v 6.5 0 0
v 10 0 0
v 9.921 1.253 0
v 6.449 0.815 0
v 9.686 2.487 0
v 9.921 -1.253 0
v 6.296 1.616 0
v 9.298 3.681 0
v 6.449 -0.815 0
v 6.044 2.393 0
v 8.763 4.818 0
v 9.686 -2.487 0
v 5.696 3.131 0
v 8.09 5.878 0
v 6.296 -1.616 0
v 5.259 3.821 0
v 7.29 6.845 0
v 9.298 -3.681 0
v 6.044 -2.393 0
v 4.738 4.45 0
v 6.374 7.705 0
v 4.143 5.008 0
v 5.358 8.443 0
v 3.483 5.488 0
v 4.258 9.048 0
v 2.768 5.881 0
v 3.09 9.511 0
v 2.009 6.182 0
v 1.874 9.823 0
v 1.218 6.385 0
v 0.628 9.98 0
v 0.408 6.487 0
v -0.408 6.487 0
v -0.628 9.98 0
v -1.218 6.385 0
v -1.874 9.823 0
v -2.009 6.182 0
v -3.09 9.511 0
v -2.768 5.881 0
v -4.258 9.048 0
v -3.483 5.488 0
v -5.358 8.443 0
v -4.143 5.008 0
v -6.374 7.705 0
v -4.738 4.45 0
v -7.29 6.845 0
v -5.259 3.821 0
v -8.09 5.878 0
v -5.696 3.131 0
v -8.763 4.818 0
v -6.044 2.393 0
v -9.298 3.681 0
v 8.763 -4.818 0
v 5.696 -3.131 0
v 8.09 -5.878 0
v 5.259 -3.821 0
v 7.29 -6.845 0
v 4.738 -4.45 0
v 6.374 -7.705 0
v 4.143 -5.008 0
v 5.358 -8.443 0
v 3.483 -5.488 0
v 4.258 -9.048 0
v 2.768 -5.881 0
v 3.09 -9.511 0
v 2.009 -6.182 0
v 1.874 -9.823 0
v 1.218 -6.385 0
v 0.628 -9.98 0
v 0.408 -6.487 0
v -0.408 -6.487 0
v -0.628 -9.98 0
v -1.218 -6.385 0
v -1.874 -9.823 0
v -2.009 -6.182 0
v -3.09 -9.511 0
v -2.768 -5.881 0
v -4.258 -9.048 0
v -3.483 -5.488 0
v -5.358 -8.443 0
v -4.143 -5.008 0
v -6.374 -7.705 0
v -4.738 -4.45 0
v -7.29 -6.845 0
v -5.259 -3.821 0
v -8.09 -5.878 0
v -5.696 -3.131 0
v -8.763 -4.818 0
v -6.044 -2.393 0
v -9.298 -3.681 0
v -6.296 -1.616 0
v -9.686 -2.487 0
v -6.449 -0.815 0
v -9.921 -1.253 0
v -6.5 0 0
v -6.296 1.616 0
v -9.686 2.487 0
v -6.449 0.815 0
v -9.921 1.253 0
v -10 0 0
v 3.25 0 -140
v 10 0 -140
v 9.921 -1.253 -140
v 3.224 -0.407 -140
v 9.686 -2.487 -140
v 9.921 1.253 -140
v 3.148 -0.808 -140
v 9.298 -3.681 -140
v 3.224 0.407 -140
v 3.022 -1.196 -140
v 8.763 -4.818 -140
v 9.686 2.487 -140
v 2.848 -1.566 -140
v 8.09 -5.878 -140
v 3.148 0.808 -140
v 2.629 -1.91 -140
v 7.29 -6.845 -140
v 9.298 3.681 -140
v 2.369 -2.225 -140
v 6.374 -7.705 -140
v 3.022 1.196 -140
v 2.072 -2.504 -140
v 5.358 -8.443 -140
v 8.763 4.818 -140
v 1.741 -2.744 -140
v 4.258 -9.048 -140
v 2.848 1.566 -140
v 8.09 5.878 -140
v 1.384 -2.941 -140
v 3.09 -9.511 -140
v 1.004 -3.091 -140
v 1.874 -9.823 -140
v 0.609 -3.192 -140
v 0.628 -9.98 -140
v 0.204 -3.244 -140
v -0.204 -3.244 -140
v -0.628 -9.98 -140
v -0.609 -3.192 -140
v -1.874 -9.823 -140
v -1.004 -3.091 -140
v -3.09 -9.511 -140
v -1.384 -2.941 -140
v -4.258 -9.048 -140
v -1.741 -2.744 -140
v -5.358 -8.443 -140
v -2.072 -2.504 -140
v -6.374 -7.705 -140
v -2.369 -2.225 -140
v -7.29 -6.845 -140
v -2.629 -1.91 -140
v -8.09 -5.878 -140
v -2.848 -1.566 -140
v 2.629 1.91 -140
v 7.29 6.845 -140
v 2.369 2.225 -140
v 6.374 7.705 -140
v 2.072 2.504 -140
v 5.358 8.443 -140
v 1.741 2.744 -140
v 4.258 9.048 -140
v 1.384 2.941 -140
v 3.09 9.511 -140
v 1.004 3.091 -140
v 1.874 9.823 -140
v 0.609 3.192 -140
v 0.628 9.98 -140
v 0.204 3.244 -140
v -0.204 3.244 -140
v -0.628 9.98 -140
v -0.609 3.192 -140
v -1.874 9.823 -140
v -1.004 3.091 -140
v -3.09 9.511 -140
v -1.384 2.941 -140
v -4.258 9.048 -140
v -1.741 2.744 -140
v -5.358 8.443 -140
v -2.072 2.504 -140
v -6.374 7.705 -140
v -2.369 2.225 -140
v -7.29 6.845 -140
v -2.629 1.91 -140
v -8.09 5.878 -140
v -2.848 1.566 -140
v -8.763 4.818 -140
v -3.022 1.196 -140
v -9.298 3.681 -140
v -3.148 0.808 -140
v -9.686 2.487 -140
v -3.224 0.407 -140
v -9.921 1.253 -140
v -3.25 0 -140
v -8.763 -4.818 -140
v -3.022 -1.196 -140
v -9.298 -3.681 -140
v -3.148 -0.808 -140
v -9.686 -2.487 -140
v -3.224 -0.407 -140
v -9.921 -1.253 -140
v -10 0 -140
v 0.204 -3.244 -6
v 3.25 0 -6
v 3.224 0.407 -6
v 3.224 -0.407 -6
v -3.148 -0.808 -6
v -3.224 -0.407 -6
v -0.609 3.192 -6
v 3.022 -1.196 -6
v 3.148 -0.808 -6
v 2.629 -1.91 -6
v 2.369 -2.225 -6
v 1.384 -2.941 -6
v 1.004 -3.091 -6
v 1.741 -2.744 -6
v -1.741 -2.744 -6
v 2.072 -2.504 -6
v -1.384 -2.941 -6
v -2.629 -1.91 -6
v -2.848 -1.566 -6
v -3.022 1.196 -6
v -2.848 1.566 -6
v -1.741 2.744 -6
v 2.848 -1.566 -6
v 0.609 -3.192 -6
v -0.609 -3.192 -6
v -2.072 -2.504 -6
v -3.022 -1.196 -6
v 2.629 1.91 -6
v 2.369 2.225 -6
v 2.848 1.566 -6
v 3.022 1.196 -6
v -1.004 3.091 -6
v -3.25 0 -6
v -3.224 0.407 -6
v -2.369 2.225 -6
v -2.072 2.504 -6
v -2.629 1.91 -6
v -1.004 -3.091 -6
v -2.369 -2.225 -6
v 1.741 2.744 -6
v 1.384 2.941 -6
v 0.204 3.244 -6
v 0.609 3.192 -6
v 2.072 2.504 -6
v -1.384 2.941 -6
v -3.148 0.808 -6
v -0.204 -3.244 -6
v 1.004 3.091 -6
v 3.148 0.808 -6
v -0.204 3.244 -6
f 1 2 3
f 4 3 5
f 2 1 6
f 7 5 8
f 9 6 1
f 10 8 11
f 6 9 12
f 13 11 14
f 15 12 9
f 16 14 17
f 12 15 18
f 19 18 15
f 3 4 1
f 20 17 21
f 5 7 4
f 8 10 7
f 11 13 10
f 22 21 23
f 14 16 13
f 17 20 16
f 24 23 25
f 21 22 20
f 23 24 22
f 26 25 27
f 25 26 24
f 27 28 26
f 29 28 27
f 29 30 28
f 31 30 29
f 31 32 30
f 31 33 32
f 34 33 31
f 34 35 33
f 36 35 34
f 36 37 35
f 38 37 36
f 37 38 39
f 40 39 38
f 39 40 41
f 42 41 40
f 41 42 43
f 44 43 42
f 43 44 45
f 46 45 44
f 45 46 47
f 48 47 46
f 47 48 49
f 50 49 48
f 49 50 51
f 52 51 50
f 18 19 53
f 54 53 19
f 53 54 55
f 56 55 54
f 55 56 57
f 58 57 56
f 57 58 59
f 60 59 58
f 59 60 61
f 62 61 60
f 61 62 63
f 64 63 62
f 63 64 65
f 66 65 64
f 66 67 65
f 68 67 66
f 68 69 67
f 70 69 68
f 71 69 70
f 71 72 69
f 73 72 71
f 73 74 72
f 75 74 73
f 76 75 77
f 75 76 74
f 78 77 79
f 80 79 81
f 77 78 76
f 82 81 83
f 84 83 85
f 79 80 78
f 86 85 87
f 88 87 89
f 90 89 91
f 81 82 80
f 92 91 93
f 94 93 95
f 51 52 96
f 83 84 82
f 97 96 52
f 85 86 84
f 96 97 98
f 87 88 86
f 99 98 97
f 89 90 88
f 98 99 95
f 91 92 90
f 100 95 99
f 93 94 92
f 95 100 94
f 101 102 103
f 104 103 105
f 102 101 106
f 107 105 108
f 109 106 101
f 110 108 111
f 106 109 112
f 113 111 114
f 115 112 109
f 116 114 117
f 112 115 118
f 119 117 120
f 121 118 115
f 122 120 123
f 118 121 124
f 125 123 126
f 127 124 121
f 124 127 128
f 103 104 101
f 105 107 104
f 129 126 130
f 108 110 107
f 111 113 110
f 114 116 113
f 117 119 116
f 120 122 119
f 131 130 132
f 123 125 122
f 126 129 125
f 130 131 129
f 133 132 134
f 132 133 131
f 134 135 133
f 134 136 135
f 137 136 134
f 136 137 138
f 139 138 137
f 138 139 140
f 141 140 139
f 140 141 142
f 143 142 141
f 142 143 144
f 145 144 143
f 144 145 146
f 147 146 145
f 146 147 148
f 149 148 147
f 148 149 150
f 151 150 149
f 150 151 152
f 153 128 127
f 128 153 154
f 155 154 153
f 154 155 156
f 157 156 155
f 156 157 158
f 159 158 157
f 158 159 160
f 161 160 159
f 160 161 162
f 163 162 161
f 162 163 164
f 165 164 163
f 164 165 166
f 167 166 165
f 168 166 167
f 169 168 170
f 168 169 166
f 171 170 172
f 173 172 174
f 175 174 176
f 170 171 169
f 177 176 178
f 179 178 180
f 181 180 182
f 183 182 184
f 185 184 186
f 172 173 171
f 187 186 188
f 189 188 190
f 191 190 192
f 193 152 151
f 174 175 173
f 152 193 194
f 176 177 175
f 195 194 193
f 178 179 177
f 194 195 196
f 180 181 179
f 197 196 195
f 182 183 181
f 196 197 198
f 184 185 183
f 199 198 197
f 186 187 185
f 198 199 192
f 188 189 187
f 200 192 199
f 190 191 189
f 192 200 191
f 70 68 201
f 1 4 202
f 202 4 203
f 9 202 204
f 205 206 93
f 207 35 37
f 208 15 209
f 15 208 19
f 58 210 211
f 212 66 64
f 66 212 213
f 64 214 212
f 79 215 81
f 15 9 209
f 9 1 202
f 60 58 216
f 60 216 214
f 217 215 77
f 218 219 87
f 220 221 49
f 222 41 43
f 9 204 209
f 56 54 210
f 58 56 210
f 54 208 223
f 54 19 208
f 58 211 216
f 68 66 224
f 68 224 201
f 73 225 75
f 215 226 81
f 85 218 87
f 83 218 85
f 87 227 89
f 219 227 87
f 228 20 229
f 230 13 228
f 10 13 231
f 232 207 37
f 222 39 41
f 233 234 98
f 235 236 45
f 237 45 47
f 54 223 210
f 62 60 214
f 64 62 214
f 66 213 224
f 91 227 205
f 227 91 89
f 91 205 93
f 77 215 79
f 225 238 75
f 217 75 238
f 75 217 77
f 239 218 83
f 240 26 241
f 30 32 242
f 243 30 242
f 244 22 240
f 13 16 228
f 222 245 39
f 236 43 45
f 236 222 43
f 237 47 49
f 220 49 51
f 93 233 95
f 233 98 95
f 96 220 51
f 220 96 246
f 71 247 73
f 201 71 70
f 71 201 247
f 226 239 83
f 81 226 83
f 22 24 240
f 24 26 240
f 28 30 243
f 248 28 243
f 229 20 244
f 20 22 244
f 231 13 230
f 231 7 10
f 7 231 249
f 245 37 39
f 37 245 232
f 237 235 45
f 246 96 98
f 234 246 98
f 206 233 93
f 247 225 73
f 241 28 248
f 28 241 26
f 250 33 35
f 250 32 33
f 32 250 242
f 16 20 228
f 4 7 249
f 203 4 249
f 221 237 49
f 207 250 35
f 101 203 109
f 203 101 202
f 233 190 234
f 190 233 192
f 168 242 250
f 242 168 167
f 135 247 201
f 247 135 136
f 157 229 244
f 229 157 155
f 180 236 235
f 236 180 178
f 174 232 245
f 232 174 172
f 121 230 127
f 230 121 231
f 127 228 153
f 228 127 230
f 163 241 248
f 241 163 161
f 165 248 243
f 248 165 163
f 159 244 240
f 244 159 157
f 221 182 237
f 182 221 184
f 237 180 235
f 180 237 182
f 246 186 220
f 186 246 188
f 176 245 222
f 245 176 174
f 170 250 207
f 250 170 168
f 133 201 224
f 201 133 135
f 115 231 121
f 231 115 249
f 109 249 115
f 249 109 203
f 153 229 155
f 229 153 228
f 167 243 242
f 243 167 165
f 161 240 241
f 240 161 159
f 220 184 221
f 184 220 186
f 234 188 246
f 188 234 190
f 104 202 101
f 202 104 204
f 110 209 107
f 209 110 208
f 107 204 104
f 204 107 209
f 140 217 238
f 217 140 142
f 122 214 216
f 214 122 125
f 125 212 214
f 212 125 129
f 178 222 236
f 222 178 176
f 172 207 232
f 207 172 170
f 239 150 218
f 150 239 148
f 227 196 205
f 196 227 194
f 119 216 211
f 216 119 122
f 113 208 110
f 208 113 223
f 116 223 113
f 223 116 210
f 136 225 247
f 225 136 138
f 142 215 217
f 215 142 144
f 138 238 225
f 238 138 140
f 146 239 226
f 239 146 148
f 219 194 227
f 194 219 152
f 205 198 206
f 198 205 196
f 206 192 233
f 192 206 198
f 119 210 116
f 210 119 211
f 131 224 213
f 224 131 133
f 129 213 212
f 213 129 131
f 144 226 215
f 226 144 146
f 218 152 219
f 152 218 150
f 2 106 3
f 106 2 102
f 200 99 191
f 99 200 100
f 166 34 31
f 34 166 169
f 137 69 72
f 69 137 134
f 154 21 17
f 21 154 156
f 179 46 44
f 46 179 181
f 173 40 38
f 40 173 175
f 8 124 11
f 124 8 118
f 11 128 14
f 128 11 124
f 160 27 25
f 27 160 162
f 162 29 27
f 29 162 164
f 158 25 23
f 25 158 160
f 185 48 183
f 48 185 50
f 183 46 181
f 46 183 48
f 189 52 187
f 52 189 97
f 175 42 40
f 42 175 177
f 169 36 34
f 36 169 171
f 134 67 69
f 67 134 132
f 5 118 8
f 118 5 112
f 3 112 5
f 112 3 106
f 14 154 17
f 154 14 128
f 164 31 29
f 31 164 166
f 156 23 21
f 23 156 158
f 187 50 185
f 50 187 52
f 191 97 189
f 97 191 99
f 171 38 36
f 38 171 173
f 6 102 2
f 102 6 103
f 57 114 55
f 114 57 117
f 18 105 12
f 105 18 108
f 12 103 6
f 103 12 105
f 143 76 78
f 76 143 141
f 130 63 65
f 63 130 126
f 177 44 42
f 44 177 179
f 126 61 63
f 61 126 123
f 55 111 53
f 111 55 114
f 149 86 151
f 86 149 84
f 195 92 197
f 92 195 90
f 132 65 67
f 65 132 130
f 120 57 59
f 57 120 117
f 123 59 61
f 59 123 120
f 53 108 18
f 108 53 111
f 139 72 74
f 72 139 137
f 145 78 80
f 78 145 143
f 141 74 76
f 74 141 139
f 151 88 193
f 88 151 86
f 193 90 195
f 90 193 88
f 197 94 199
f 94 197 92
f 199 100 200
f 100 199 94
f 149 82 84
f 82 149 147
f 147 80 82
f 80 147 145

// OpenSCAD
$fn = 50;


difference() {
	union() {
		translate(v = [0, 0, -140.0000000000]) {
			cylinder(h = 140, r = 10.0000000000);
		}
		cylinder(h = 0, r = 16.0000000000);
	}
	union() {
		translate(v = [0, 0, 0]) {
			rotate(a = [0, 0, 0]) {
				difference() {
					union() {
						#translate(v = [0, 0, -140.0000000000]) {
							cylinder(h = 140, r = 2.2500000000);
						}
						#translate(v = [0, 0, -6]) {
							cylinder(h = 6, r1 = 3.2500000000, r2 = 6.5000000000);
						}
						#translate(v = [0, 0, -140.0000000000]) {
							cylinder(h = 140, r = 3.2500000000);
						}
						#translate(v = [0, 0, -140.0000000000]) {
							cylinder(h = 140, r = 2.2500000000);
						}
					}
					union();
				}
			}
		}
	}
}
